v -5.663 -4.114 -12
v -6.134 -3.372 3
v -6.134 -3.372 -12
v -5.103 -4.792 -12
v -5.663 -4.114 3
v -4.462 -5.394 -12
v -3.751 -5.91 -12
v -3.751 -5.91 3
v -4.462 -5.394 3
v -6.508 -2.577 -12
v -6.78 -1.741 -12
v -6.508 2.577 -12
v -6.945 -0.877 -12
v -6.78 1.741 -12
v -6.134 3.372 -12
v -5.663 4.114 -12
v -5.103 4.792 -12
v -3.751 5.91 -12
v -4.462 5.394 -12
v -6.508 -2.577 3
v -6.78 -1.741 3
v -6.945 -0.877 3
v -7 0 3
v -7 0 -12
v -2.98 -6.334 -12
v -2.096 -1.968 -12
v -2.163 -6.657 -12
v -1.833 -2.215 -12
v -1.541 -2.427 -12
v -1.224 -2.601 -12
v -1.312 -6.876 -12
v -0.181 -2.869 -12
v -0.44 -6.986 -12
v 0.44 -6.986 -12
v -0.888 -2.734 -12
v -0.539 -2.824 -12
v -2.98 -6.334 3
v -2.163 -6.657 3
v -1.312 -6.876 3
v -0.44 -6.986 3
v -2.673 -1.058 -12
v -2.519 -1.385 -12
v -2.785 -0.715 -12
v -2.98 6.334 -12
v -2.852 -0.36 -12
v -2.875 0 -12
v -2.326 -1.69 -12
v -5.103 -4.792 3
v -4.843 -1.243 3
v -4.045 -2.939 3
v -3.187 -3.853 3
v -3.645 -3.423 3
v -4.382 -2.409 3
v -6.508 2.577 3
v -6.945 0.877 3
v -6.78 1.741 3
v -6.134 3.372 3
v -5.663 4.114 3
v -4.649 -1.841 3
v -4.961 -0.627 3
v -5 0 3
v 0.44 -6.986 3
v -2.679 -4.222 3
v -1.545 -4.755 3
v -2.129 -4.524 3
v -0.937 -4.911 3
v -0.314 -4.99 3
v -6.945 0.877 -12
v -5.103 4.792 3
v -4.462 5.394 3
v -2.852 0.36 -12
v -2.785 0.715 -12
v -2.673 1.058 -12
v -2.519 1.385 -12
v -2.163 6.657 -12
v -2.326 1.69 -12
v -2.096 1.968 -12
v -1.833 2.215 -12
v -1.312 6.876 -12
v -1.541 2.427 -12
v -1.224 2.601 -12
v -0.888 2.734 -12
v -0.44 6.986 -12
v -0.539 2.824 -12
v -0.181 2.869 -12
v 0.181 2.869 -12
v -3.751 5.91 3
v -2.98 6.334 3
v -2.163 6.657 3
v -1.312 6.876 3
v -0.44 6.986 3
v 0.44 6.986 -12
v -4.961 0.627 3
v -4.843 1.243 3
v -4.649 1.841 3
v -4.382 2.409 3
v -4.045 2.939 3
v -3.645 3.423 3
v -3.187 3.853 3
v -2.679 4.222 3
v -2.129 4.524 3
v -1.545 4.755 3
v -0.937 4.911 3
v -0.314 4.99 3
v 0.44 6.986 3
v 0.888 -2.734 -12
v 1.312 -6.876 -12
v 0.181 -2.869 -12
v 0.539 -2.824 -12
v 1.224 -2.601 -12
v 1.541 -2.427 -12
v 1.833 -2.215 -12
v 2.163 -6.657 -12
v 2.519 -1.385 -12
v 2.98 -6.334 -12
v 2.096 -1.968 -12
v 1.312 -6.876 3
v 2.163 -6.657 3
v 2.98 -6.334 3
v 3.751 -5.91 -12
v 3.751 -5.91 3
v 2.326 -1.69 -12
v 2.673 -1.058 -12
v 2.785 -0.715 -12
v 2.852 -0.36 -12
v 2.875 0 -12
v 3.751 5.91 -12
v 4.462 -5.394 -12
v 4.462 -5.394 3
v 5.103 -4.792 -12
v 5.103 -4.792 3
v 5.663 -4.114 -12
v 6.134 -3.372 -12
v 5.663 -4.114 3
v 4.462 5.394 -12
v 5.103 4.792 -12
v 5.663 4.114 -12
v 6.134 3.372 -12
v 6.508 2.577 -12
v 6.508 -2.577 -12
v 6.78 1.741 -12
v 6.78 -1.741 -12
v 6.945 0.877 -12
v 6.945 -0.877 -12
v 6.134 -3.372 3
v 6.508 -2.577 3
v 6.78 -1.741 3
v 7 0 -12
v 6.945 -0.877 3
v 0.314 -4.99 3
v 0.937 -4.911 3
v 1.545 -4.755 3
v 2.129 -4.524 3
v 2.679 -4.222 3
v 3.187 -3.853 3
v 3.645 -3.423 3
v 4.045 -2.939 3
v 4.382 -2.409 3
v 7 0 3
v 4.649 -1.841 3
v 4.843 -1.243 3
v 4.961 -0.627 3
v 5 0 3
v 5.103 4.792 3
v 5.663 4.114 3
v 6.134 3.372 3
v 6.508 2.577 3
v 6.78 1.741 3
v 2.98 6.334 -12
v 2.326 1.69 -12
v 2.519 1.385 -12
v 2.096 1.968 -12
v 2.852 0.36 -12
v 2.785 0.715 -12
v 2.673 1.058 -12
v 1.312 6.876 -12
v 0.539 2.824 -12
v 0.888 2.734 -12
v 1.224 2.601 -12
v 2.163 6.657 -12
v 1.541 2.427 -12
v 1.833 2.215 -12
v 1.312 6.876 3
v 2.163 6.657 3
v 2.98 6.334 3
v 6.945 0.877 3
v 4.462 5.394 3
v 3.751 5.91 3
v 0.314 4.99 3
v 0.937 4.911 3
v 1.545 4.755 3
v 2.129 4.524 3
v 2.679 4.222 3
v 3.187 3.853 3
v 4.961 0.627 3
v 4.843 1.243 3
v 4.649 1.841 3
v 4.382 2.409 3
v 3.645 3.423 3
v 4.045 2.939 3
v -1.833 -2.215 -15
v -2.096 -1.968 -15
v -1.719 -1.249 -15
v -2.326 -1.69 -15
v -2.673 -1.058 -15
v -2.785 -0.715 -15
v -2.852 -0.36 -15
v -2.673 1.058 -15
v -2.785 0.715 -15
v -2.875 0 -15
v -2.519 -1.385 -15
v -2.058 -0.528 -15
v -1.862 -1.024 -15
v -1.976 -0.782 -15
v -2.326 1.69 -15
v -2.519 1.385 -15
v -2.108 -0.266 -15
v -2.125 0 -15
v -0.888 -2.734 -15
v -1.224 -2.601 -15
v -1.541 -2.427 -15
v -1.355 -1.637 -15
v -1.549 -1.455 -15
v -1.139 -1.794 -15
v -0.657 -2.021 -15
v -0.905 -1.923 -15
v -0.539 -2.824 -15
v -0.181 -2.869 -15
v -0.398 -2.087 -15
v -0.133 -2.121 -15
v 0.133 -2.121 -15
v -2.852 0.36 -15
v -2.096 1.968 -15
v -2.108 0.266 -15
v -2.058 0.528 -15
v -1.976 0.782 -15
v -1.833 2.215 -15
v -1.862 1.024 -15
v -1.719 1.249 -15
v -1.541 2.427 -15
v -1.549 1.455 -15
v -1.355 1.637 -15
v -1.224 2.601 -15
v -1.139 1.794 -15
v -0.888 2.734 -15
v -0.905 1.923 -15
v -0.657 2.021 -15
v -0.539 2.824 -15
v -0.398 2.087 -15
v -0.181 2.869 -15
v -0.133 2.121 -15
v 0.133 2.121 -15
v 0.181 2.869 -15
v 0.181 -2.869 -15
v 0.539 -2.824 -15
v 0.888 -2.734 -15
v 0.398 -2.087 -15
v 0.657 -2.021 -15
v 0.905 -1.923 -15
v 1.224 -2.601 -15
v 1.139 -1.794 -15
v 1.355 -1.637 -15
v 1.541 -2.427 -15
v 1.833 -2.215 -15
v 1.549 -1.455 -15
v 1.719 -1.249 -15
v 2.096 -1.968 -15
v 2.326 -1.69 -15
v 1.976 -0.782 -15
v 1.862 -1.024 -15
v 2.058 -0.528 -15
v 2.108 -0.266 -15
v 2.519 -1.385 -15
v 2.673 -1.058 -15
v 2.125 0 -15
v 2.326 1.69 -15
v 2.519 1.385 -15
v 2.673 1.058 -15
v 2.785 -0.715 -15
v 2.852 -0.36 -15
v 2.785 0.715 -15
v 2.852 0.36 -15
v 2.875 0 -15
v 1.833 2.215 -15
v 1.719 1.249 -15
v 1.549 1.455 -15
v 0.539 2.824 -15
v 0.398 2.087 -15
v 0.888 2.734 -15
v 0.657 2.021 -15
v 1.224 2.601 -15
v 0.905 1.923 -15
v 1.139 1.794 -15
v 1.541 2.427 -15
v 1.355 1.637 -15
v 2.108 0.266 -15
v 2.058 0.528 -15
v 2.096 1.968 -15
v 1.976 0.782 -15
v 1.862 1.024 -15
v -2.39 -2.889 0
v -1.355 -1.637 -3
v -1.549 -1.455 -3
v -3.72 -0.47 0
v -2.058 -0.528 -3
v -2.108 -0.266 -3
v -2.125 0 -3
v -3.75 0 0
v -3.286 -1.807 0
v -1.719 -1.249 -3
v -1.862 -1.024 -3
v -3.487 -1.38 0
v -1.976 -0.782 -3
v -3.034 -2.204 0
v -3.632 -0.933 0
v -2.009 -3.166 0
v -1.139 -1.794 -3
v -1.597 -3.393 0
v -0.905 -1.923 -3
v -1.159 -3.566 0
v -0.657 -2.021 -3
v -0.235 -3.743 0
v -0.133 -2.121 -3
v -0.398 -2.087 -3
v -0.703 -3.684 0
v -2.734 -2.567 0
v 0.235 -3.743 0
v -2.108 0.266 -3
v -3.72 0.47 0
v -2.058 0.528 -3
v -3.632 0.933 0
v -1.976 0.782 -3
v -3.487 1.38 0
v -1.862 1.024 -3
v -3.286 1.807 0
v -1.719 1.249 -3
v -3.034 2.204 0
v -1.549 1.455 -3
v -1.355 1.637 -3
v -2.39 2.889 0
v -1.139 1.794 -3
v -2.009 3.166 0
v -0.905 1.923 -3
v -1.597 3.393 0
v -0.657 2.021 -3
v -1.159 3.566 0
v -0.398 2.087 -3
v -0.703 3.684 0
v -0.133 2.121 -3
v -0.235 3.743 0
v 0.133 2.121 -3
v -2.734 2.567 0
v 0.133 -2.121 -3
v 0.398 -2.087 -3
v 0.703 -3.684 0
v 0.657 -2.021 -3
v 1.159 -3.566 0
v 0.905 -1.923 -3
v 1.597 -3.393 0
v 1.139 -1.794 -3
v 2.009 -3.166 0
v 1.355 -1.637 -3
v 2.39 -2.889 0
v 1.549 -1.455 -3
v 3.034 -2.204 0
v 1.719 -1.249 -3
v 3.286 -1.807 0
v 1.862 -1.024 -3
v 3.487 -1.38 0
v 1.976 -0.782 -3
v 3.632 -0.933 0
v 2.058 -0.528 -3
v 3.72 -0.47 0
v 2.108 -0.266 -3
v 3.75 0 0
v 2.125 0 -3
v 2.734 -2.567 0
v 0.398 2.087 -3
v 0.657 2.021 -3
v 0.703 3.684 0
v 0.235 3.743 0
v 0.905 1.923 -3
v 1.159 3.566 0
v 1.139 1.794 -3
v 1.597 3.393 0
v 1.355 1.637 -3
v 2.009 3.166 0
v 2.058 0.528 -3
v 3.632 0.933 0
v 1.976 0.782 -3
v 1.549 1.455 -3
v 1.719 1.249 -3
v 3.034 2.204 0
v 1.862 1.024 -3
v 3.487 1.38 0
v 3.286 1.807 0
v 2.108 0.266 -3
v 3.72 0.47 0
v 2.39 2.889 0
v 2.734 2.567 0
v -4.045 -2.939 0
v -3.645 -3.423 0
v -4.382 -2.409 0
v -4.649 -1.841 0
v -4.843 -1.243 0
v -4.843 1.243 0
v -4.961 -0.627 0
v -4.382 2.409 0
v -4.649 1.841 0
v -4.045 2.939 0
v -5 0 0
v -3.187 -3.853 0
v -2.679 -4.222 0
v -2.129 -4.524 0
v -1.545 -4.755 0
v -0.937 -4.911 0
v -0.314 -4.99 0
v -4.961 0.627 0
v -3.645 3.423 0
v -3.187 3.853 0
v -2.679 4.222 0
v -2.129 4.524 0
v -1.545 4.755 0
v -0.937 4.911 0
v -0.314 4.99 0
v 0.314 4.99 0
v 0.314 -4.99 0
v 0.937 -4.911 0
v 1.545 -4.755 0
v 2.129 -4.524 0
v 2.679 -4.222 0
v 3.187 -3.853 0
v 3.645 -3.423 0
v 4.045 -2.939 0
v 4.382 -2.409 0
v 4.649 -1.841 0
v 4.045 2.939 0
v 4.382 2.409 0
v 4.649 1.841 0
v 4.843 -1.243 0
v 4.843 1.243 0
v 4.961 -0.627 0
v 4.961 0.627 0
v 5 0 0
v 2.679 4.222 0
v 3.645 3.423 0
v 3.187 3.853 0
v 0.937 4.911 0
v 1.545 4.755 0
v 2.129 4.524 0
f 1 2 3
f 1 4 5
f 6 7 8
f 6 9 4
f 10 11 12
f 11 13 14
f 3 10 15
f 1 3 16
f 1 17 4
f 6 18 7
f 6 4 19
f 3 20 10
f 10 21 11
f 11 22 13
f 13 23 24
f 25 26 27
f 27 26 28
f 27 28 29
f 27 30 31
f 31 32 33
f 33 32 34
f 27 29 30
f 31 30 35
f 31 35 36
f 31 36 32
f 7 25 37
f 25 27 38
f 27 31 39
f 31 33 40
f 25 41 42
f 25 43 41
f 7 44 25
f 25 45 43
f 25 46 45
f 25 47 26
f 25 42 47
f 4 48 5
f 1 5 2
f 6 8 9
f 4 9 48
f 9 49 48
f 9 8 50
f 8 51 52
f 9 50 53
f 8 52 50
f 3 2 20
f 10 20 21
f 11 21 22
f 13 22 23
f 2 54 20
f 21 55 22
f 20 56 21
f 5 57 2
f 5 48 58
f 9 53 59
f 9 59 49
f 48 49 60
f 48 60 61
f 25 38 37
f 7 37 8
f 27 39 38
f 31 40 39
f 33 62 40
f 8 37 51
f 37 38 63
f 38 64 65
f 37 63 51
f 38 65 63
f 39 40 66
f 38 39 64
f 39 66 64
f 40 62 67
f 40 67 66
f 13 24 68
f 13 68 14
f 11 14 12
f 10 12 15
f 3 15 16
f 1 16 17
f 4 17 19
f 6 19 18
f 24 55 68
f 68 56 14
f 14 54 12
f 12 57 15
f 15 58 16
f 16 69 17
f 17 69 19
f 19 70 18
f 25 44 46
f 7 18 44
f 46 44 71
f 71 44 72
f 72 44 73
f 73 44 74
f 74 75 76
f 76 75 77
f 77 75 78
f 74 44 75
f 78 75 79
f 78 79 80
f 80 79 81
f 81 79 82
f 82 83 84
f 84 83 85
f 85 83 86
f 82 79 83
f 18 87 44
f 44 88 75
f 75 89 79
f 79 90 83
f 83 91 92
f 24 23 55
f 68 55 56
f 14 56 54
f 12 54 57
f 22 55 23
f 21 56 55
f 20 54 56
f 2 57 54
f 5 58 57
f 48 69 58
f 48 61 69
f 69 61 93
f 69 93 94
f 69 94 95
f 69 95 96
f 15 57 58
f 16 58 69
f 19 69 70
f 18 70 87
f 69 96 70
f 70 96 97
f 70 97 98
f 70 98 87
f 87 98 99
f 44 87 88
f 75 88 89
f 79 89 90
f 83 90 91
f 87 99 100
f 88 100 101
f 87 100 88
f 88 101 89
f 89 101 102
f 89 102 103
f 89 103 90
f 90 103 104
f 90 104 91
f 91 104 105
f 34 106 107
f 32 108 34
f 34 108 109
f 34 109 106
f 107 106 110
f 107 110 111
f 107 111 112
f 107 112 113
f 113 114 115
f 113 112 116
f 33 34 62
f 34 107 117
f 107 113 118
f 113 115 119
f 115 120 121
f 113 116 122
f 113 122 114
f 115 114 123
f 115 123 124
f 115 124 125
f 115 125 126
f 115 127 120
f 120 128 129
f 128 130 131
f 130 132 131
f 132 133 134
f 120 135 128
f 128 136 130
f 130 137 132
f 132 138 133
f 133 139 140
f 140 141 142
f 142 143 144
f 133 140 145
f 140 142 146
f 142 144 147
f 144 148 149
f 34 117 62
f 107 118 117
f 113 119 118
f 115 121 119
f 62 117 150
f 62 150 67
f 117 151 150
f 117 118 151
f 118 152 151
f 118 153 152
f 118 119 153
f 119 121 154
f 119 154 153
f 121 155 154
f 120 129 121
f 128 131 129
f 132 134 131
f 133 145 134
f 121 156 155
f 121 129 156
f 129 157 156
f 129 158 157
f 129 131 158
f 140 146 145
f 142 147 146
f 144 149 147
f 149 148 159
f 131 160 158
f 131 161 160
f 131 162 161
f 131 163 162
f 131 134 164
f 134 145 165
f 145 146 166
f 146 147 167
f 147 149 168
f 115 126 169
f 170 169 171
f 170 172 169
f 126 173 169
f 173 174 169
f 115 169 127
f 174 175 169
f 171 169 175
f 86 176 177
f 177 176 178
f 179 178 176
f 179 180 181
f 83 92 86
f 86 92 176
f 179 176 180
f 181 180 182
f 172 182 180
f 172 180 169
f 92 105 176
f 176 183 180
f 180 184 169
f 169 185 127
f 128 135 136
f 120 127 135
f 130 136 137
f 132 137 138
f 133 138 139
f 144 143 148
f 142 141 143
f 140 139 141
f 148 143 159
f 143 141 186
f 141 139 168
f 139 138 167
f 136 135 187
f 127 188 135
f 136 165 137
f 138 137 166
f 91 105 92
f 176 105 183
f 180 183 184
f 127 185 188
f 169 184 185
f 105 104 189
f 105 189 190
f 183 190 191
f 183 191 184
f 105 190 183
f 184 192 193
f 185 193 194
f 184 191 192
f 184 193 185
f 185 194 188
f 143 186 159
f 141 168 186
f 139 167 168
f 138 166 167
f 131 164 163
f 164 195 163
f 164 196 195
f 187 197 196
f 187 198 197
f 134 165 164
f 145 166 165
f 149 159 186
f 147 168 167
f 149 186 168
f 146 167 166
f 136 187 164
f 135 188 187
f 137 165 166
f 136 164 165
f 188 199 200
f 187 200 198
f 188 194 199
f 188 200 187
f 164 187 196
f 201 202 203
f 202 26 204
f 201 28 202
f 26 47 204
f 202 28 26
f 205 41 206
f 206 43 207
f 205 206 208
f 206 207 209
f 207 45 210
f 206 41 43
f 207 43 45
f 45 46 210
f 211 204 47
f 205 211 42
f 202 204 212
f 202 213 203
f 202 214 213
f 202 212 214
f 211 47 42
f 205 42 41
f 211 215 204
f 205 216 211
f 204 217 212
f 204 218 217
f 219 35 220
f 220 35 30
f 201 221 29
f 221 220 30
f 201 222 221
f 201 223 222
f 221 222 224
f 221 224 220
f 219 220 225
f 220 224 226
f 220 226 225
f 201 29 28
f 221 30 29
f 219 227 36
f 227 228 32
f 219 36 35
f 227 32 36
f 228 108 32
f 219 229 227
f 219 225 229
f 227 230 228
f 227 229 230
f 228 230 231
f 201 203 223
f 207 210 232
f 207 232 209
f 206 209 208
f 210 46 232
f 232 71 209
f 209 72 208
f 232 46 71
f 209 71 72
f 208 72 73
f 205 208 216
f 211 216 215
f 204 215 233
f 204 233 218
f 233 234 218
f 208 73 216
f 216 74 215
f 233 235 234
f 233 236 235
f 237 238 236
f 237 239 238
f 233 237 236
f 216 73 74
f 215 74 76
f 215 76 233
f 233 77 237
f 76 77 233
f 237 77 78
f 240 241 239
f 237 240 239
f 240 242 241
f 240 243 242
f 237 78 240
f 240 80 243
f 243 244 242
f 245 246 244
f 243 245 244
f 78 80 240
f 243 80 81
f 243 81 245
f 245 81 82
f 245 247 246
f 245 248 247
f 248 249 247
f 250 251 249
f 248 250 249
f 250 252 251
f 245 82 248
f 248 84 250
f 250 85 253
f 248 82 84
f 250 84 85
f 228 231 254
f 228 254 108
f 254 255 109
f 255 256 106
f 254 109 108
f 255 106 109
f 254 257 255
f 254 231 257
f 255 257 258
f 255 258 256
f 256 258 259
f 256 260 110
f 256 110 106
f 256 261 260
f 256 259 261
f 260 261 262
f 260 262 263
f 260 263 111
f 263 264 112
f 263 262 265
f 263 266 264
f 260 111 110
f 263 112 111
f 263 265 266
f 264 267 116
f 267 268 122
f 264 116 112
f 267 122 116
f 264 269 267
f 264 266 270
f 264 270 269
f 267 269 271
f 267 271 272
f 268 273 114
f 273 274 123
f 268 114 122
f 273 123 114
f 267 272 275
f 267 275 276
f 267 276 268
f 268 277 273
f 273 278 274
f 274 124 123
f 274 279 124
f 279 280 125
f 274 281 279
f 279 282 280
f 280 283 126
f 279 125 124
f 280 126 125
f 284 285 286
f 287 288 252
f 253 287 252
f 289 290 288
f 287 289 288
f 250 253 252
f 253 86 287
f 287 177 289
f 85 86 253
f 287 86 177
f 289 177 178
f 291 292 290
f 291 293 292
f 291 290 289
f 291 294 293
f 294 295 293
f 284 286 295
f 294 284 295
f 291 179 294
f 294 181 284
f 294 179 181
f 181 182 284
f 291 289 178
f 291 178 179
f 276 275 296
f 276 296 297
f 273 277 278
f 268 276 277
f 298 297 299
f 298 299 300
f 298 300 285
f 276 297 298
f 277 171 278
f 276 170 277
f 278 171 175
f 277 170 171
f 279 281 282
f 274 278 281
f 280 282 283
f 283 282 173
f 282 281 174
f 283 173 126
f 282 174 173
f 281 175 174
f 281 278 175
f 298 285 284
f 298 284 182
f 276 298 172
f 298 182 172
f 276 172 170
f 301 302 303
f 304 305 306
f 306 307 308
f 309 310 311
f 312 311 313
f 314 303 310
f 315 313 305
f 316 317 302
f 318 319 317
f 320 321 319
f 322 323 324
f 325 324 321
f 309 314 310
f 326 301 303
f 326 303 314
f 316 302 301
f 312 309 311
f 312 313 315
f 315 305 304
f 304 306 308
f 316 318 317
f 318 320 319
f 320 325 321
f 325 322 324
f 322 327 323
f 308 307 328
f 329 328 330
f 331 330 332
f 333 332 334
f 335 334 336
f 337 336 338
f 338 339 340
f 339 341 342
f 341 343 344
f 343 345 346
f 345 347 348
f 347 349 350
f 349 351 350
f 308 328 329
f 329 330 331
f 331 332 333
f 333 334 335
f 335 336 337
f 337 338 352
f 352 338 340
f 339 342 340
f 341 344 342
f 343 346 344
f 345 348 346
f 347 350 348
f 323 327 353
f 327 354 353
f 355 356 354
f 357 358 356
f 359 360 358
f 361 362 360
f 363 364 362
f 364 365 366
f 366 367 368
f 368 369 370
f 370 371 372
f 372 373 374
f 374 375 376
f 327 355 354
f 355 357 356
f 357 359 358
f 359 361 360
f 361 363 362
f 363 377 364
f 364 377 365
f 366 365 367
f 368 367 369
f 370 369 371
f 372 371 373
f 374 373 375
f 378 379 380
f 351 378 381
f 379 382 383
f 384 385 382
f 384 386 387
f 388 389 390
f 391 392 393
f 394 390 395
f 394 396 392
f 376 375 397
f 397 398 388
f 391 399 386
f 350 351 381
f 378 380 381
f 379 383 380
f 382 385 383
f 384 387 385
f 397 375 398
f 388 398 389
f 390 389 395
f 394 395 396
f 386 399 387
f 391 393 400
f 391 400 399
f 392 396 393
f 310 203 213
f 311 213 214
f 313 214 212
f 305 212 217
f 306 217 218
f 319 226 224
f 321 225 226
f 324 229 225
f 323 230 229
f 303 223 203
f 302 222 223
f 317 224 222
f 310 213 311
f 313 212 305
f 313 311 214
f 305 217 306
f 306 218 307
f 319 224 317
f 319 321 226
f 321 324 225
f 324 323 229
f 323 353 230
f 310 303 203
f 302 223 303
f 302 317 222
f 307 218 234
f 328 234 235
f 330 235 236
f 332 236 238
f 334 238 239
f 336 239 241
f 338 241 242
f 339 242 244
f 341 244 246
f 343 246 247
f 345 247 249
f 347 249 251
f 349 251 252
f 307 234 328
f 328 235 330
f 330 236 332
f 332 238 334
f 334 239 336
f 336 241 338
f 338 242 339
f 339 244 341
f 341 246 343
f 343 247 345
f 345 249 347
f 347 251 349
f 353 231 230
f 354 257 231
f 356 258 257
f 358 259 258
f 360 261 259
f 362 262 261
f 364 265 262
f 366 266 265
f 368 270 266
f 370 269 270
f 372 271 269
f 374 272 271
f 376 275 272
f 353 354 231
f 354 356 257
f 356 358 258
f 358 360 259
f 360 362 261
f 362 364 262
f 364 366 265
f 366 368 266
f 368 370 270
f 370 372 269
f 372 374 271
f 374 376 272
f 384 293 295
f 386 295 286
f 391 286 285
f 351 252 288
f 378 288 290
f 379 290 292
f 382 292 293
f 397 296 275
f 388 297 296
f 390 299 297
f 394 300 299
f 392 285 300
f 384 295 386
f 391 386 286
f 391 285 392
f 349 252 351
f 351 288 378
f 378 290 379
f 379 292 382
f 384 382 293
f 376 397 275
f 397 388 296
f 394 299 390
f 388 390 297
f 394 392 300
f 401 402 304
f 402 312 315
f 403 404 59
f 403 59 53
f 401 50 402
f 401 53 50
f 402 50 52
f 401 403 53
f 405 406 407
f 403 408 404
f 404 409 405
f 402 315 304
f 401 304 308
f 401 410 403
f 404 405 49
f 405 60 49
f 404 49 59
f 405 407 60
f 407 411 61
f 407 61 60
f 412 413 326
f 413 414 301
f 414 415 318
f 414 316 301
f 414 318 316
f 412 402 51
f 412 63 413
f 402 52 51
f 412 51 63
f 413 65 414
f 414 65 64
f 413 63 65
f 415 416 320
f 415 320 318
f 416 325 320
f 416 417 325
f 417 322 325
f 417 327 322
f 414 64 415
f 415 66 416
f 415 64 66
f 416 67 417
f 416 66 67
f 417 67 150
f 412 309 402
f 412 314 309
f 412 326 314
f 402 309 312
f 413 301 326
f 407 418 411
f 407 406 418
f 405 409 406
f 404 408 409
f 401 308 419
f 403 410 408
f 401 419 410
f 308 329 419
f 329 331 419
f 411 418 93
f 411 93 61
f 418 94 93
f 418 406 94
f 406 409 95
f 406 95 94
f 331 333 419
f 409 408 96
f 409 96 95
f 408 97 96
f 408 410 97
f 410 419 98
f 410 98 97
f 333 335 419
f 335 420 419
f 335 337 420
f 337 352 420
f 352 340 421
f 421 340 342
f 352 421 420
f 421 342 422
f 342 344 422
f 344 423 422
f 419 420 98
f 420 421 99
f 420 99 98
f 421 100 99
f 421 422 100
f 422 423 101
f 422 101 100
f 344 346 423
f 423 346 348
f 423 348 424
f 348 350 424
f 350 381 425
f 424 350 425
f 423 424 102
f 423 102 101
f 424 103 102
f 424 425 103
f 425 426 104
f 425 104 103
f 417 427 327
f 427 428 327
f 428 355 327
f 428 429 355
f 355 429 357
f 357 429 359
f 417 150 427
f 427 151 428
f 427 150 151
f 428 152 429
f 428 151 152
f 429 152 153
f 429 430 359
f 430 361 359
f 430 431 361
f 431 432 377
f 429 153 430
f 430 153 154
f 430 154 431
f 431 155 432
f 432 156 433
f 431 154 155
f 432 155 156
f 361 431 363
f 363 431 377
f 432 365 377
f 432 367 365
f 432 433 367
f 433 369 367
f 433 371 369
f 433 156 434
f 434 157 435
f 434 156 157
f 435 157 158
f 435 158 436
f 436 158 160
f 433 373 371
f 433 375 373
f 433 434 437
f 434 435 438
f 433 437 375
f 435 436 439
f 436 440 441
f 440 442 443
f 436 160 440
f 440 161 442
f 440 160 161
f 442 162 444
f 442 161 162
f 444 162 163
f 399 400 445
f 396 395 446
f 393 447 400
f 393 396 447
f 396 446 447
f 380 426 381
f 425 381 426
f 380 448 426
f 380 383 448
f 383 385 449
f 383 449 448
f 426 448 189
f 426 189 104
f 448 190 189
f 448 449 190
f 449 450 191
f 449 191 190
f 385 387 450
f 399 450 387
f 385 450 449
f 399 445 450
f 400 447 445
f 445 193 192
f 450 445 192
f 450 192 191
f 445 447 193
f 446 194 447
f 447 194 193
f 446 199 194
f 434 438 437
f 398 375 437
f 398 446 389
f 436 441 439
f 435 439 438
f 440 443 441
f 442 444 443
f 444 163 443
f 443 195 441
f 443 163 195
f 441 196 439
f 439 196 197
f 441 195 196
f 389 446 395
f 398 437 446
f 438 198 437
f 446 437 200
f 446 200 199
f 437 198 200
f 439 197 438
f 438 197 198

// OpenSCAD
$fn = 50;

difference() {
	union() {
		translate(v = [0, 0, -12.0]) {
			cylinder(h = 15, r = 7.0);
		}
		#translate(v = [0, 0, -15.0]) {
			cylinder(h = 15, r = 2.875);
		}
	}
	union() {
		translate(v = [0, 0, 0]) {
			rotate(a = [0, 0, 0]) {
				difference() {
					union() {
						translate(v = [0, 0, -15.0]) {
							cylinder(h = 15, r = 2.0);
						}
						translate(v = [0, 0, -3]) {
							cylinder(h = 3, r1 = 2.125, r2 = 3.75);
						}
						translate(v = [0, 0, -15.0]) {
							cylinder(h = 15, r = 2.125);
						}
						translate(v = [0, 0, -15.0]) {
							cylinder(h = 15, r = 2.0);
						}
					}
					union();
				}
			}
		}
		#cylinder(h = 3, r = 5.0);
	}
}
